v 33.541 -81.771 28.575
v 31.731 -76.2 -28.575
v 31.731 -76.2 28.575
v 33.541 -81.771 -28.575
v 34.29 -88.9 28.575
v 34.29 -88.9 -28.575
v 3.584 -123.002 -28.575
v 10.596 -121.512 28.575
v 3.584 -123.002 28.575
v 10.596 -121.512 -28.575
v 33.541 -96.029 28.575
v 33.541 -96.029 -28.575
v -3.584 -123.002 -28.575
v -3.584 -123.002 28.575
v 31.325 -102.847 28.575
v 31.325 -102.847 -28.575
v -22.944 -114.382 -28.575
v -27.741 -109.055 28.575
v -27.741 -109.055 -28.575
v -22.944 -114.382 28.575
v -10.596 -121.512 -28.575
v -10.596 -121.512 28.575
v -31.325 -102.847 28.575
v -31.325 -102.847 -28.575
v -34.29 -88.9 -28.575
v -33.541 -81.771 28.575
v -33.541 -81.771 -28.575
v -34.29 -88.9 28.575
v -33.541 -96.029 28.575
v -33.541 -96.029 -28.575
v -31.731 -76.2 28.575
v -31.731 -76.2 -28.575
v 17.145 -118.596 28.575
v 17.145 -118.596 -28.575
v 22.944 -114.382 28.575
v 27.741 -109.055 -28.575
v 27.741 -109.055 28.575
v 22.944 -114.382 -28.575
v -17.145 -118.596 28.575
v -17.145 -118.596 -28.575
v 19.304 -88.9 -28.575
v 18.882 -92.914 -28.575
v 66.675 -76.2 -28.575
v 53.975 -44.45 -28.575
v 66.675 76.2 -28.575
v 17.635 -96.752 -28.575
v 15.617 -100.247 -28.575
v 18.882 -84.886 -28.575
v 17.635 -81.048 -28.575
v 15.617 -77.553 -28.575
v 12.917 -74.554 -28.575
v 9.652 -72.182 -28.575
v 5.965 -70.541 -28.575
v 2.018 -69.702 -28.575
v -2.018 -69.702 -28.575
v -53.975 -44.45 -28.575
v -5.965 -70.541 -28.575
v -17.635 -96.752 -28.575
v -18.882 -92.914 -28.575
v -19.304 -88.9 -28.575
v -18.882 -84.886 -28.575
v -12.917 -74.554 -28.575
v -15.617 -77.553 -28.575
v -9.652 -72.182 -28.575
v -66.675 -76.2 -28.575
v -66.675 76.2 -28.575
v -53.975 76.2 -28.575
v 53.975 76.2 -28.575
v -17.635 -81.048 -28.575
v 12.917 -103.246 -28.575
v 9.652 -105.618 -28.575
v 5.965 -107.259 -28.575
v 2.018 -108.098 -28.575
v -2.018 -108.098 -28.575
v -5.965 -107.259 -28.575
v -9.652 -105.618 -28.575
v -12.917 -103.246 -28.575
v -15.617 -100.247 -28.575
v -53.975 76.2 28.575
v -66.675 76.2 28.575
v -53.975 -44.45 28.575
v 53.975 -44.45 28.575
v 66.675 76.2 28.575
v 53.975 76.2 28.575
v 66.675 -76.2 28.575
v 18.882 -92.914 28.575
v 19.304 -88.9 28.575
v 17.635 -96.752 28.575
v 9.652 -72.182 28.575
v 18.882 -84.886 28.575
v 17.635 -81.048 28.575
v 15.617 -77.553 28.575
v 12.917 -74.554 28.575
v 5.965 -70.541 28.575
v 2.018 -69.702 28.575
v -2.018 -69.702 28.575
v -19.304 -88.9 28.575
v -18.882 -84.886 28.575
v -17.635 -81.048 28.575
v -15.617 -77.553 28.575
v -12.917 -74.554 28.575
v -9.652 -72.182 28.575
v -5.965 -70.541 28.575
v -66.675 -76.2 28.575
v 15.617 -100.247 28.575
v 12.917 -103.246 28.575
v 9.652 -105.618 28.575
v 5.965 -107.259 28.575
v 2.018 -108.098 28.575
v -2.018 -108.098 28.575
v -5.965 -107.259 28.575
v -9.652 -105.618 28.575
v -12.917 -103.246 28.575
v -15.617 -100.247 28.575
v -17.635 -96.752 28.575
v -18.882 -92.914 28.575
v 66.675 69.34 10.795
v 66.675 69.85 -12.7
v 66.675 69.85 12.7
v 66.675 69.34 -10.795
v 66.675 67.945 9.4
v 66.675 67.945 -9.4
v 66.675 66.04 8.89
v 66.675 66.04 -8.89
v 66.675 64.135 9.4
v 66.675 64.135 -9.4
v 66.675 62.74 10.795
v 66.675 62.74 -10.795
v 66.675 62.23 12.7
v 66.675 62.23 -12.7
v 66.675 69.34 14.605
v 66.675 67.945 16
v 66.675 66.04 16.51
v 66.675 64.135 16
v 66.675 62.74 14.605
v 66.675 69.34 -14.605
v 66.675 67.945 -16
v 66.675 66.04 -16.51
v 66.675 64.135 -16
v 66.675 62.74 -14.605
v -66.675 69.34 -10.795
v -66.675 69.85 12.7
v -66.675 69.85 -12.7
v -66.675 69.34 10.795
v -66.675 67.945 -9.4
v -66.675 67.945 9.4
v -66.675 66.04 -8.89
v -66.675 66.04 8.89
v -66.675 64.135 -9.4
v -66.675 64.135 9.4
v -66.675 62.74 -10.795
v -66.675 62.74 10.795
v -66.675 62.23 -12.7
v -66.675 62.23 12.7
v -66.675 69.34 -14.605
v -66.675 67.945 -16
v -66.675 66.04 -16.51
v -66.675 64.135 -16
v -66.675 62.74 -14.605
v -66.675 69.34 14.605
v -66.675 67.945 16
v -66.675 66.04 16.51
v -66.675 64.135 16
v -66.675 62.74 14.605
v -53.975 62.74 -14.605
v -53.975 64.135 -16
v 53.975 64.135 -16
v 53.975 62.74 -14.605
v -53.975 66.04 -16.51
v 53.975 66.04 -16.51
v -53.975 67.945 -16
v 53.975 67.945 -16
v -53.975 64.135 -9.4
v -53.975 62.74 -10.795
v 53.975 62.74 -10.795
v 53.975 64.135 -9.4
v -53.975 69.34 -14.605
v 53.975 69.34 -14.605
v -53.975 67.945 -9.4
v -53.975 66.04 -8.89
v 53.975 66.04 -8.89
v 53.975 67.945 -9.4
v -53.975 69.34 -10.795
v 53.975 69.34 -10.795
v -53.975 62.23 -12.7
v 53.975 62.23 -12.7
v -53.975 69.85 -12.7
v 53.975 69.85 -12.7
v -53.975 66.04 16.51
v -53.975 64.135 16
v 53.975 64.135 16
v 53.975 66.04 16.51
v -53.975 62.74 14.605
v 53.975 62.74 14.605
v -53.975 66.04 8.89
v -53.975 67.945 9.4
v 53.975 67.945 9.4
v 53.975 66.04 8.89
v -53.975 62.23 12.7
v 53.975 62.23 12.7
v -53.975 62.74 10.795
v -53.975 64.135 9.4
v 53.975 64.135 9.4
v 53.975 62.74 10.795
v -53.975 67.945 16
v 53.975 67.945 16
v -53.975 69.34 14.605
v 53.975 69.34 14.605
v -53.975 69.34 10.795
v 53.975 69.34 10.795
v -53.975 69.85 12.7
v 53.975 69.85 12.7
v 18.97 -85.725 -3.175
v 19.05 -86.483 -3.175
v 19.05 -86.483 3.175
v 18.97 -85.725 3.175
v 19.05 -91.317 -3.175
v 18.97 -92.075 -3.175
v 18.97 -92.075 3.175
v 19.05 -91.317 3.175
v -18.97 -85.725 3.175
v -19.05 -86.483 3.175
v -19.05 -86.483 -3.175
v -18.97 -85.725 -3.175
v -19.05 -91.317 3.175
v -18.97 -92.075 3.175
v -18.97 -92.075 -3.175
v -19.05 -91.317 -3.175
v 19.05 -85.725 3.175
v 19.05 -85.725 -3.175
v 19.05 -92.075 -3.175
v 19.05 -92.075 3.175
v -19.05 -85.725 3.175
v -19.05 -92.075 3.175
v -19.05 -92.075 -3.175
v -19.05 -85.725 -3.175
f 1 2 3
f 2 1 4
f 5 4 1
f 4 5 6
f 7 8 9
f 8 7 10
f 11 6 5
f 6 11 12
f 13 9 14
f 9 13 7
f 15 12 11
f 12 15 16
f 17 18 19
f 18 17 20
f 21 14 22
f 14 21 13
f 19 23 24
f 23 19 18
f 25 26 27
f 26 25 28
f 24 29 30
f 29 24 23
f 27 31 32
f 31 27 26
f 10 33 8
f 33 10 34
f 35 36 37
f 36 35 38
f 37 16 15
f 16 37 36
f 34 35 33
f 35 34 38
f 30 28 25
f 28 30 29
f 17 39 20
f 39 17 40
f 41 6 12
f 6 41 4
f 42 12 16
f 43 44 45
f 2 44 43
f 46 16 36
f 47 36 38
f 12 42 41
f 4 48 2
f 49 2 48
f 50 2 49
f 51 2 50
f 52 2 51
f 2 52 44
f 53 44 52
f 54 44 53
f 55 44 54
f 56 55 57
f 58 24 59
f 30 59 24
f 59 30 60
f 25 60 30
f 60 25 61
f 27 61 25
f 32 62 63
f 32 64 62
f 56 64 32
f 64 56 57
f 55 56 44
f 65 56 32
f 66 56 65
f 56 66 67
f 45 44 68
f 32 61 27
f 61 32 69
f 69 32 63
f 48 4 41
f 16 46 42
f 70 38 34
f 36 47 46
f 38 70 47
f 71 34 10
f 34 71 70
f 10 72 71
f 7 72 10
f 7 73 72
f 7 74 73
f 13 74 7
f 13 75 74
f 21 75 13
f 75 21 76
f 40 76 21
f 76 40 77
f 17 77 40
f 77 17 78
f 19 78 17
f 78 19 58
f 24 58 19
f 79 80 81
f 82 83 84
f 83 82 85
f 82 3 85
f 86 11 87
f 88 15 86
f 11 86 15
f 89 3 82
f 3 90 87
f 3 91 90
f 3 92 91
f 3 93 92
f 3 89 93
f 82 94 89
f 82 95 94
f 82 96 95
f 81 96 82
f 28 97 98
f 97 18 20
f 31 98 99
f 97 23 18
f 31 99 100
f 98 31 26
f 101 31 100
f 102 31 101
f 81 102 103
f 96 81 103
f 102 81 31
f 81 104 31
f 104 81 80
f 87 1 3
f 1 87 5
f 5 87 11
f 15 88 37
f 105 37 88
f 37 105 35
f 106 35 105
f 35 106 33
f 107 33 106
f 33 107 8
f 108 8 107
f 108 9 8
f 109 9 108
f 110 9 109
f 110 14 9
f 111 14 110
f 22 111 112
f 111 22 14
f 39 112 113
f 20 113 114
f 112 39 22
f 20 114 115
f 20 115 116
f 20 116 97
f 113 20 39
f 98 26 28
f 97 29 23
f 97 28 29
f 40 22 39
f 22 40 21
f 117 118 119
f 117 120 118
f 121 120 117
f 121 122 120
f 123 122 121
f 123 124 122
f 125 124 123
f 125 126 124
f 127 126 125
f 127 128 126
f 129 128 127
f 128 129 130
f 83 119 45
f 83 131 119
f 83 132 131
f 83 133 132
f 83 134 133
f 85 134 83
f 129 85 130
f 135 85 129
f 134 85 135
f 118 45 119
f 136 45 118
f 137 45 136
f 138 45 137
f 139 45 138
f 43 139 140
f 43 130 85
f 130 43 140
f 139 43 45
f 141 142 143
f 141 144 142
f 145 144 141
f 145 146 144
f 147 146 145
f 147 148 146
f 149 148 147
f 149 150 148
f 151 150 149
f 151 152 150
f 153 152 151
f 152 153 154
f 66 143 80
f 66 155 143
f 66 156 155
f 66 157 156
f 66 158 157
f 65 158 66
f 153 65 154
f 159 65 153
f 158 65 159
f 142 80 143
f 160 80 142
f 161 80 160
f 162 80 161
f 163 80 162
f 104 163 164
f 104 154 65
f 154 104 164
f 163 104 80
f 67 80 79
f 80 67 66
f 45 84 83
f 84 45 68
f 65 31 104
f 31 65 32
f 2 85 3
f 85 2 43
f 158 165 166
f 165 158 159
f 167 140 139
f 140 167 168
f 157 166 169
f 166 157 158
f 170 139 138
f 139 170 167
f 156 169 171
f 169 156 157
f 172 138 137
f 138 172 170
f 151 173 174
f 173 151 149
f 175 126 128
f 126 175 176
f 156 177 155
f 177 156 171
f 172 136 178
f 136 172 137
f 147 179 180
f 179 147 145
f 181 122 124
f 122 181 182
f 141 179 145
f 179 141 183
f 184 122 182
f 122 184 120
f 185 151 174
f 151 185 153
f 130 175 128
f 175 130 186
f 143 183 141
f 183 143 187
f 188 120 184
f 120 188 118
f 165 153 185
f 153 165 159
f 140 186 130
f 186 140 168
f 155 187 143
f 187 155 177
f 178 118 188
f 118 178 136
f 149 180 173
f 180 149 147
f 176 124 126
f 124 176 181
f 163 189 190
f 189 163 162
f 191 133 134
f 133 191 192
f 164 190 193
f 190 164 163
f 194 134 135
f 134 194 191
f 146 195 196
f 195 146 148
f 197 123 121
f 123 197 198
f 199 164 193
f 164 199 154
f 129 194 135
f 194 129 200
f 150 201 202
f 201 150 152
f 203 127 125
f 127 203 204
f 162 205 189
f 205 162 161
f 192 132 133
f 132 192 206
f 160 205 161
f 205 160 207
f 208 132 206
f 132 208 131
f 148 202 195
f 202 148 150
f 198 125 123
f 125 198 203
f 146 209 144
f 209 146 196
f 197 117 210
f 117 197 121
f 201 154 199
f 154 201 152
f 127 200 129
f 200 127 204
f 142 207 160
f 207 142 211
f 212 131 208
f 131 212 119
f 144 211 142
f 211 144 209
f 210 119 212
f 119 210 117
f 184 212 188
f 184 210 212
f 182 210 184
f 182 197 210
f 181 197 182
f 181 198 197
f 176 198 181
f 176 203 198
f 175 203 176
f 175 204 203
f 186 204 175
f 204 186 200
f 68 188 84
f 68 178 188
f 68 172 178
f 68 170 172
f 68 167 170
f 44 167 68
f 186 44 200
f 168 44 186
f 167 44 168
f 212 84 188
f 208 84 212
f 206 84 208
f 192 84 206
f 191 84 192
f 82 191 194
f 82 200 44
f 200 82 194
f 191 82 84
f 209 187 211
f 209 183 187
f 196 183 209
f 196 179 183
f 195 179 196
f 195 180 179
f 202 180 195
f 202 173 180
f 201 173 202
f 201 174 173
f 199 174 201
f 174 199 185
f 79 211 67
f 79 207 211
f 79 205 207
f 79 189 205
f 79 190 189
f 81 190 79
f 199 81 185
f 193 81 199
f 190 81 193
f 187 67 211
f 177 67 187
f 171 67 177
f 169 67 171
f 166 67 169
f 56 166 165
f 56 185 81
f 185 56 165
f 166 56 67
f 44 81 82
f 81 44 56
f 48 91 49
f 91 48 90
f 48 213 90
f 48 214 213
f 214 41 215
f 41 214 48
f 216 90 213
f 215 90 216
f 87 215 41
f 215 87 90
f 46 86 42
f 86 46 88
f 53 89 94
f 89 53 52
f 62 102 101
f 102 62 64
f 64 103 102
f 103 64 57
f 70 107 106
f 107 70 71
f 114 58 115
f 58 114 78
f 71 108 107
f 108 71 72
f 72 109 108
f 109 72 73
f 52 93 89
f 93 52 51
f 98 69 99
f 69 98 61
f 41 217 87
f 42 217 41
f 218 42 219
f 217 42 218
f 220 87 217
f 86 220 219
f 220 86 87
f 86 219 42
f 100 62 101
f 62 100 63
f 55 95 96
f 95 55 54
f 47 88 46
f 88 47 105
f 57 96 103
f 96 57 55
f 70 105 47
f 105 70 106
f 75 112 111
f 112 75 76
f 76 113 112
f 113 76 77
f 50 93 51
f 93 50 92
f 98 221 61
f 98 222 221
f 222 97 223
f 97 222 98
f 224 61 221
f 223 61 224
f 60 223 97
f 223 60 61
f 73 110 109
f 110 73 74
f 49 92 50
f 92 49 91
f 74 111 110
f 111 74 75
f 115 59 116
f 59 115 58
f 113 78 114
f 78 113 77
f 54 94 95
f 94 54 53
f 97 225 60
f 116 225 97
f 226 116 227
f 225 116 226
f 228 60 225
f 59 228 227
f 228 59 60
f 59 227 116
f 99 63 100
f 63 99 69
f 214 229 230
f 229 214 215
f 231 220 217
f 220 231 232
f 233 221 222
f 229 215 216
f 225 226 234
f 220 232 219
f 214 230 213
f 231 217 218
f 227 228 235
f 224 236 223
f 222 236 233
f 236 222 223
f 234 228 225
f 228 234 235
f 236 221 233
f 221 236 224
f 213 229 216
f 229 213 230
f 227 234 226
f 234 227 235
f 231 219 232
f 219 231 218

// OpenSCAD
// 25.4mm is 1.25inch
scale = 25.4;
//z=2*scale;

z=2.25*scale;
x=5.25*scale;
y=6*scale;

radius_inner = .76*scale;
radius_outer = 1.35*scale;

zip_tie_radius_inner = .15*scale;
zip_tie_radius_outer = .3*scale;

module base(){
    translate([0,-3.50*scale,0]) cylinder(r=radius_outer,h=z,center=true);
    cube(size = [x,y,z], center = true);
}


module poleCutOut(){
    translate([0,-3.5*scale,0]) cylinder(r=radius_inner,h=z,center=true);    
}

module zipTieCutOut(){
    translate([0, 2.6*scale,-.5*scale]) rotate(90,[0,1,0]) cylinder(r=zip_tie_radius_inner, h=7*scale,center=true);
    translate([0, 2.6*scale,.5*scale]) rotate(90,[0,1,0]) cylinder(r=zip_tie_radius_inner, h=7*scale,center=true);
}

module cutOut(){
    translate([0,1*scale,0]) cube(size = [x-1*scale, y-.5*scale, z], center = true);
}

module testWidthBar(){
    cube(size = [4.25*scale,2*scale,2*scale], center = true);
}

module testDiameterBar(){
    translate([0,-3.5*scale,0]) cube(size = [1.5*scale,.25*scale,.25*scale], center = true);
}


difference(){
    base();
    cutOut();
    poleCutOut();
    zipTieCutOut();
    testWidthBar();
    testDiameterBar();
}

//testBar();
//testDiameterBar();
